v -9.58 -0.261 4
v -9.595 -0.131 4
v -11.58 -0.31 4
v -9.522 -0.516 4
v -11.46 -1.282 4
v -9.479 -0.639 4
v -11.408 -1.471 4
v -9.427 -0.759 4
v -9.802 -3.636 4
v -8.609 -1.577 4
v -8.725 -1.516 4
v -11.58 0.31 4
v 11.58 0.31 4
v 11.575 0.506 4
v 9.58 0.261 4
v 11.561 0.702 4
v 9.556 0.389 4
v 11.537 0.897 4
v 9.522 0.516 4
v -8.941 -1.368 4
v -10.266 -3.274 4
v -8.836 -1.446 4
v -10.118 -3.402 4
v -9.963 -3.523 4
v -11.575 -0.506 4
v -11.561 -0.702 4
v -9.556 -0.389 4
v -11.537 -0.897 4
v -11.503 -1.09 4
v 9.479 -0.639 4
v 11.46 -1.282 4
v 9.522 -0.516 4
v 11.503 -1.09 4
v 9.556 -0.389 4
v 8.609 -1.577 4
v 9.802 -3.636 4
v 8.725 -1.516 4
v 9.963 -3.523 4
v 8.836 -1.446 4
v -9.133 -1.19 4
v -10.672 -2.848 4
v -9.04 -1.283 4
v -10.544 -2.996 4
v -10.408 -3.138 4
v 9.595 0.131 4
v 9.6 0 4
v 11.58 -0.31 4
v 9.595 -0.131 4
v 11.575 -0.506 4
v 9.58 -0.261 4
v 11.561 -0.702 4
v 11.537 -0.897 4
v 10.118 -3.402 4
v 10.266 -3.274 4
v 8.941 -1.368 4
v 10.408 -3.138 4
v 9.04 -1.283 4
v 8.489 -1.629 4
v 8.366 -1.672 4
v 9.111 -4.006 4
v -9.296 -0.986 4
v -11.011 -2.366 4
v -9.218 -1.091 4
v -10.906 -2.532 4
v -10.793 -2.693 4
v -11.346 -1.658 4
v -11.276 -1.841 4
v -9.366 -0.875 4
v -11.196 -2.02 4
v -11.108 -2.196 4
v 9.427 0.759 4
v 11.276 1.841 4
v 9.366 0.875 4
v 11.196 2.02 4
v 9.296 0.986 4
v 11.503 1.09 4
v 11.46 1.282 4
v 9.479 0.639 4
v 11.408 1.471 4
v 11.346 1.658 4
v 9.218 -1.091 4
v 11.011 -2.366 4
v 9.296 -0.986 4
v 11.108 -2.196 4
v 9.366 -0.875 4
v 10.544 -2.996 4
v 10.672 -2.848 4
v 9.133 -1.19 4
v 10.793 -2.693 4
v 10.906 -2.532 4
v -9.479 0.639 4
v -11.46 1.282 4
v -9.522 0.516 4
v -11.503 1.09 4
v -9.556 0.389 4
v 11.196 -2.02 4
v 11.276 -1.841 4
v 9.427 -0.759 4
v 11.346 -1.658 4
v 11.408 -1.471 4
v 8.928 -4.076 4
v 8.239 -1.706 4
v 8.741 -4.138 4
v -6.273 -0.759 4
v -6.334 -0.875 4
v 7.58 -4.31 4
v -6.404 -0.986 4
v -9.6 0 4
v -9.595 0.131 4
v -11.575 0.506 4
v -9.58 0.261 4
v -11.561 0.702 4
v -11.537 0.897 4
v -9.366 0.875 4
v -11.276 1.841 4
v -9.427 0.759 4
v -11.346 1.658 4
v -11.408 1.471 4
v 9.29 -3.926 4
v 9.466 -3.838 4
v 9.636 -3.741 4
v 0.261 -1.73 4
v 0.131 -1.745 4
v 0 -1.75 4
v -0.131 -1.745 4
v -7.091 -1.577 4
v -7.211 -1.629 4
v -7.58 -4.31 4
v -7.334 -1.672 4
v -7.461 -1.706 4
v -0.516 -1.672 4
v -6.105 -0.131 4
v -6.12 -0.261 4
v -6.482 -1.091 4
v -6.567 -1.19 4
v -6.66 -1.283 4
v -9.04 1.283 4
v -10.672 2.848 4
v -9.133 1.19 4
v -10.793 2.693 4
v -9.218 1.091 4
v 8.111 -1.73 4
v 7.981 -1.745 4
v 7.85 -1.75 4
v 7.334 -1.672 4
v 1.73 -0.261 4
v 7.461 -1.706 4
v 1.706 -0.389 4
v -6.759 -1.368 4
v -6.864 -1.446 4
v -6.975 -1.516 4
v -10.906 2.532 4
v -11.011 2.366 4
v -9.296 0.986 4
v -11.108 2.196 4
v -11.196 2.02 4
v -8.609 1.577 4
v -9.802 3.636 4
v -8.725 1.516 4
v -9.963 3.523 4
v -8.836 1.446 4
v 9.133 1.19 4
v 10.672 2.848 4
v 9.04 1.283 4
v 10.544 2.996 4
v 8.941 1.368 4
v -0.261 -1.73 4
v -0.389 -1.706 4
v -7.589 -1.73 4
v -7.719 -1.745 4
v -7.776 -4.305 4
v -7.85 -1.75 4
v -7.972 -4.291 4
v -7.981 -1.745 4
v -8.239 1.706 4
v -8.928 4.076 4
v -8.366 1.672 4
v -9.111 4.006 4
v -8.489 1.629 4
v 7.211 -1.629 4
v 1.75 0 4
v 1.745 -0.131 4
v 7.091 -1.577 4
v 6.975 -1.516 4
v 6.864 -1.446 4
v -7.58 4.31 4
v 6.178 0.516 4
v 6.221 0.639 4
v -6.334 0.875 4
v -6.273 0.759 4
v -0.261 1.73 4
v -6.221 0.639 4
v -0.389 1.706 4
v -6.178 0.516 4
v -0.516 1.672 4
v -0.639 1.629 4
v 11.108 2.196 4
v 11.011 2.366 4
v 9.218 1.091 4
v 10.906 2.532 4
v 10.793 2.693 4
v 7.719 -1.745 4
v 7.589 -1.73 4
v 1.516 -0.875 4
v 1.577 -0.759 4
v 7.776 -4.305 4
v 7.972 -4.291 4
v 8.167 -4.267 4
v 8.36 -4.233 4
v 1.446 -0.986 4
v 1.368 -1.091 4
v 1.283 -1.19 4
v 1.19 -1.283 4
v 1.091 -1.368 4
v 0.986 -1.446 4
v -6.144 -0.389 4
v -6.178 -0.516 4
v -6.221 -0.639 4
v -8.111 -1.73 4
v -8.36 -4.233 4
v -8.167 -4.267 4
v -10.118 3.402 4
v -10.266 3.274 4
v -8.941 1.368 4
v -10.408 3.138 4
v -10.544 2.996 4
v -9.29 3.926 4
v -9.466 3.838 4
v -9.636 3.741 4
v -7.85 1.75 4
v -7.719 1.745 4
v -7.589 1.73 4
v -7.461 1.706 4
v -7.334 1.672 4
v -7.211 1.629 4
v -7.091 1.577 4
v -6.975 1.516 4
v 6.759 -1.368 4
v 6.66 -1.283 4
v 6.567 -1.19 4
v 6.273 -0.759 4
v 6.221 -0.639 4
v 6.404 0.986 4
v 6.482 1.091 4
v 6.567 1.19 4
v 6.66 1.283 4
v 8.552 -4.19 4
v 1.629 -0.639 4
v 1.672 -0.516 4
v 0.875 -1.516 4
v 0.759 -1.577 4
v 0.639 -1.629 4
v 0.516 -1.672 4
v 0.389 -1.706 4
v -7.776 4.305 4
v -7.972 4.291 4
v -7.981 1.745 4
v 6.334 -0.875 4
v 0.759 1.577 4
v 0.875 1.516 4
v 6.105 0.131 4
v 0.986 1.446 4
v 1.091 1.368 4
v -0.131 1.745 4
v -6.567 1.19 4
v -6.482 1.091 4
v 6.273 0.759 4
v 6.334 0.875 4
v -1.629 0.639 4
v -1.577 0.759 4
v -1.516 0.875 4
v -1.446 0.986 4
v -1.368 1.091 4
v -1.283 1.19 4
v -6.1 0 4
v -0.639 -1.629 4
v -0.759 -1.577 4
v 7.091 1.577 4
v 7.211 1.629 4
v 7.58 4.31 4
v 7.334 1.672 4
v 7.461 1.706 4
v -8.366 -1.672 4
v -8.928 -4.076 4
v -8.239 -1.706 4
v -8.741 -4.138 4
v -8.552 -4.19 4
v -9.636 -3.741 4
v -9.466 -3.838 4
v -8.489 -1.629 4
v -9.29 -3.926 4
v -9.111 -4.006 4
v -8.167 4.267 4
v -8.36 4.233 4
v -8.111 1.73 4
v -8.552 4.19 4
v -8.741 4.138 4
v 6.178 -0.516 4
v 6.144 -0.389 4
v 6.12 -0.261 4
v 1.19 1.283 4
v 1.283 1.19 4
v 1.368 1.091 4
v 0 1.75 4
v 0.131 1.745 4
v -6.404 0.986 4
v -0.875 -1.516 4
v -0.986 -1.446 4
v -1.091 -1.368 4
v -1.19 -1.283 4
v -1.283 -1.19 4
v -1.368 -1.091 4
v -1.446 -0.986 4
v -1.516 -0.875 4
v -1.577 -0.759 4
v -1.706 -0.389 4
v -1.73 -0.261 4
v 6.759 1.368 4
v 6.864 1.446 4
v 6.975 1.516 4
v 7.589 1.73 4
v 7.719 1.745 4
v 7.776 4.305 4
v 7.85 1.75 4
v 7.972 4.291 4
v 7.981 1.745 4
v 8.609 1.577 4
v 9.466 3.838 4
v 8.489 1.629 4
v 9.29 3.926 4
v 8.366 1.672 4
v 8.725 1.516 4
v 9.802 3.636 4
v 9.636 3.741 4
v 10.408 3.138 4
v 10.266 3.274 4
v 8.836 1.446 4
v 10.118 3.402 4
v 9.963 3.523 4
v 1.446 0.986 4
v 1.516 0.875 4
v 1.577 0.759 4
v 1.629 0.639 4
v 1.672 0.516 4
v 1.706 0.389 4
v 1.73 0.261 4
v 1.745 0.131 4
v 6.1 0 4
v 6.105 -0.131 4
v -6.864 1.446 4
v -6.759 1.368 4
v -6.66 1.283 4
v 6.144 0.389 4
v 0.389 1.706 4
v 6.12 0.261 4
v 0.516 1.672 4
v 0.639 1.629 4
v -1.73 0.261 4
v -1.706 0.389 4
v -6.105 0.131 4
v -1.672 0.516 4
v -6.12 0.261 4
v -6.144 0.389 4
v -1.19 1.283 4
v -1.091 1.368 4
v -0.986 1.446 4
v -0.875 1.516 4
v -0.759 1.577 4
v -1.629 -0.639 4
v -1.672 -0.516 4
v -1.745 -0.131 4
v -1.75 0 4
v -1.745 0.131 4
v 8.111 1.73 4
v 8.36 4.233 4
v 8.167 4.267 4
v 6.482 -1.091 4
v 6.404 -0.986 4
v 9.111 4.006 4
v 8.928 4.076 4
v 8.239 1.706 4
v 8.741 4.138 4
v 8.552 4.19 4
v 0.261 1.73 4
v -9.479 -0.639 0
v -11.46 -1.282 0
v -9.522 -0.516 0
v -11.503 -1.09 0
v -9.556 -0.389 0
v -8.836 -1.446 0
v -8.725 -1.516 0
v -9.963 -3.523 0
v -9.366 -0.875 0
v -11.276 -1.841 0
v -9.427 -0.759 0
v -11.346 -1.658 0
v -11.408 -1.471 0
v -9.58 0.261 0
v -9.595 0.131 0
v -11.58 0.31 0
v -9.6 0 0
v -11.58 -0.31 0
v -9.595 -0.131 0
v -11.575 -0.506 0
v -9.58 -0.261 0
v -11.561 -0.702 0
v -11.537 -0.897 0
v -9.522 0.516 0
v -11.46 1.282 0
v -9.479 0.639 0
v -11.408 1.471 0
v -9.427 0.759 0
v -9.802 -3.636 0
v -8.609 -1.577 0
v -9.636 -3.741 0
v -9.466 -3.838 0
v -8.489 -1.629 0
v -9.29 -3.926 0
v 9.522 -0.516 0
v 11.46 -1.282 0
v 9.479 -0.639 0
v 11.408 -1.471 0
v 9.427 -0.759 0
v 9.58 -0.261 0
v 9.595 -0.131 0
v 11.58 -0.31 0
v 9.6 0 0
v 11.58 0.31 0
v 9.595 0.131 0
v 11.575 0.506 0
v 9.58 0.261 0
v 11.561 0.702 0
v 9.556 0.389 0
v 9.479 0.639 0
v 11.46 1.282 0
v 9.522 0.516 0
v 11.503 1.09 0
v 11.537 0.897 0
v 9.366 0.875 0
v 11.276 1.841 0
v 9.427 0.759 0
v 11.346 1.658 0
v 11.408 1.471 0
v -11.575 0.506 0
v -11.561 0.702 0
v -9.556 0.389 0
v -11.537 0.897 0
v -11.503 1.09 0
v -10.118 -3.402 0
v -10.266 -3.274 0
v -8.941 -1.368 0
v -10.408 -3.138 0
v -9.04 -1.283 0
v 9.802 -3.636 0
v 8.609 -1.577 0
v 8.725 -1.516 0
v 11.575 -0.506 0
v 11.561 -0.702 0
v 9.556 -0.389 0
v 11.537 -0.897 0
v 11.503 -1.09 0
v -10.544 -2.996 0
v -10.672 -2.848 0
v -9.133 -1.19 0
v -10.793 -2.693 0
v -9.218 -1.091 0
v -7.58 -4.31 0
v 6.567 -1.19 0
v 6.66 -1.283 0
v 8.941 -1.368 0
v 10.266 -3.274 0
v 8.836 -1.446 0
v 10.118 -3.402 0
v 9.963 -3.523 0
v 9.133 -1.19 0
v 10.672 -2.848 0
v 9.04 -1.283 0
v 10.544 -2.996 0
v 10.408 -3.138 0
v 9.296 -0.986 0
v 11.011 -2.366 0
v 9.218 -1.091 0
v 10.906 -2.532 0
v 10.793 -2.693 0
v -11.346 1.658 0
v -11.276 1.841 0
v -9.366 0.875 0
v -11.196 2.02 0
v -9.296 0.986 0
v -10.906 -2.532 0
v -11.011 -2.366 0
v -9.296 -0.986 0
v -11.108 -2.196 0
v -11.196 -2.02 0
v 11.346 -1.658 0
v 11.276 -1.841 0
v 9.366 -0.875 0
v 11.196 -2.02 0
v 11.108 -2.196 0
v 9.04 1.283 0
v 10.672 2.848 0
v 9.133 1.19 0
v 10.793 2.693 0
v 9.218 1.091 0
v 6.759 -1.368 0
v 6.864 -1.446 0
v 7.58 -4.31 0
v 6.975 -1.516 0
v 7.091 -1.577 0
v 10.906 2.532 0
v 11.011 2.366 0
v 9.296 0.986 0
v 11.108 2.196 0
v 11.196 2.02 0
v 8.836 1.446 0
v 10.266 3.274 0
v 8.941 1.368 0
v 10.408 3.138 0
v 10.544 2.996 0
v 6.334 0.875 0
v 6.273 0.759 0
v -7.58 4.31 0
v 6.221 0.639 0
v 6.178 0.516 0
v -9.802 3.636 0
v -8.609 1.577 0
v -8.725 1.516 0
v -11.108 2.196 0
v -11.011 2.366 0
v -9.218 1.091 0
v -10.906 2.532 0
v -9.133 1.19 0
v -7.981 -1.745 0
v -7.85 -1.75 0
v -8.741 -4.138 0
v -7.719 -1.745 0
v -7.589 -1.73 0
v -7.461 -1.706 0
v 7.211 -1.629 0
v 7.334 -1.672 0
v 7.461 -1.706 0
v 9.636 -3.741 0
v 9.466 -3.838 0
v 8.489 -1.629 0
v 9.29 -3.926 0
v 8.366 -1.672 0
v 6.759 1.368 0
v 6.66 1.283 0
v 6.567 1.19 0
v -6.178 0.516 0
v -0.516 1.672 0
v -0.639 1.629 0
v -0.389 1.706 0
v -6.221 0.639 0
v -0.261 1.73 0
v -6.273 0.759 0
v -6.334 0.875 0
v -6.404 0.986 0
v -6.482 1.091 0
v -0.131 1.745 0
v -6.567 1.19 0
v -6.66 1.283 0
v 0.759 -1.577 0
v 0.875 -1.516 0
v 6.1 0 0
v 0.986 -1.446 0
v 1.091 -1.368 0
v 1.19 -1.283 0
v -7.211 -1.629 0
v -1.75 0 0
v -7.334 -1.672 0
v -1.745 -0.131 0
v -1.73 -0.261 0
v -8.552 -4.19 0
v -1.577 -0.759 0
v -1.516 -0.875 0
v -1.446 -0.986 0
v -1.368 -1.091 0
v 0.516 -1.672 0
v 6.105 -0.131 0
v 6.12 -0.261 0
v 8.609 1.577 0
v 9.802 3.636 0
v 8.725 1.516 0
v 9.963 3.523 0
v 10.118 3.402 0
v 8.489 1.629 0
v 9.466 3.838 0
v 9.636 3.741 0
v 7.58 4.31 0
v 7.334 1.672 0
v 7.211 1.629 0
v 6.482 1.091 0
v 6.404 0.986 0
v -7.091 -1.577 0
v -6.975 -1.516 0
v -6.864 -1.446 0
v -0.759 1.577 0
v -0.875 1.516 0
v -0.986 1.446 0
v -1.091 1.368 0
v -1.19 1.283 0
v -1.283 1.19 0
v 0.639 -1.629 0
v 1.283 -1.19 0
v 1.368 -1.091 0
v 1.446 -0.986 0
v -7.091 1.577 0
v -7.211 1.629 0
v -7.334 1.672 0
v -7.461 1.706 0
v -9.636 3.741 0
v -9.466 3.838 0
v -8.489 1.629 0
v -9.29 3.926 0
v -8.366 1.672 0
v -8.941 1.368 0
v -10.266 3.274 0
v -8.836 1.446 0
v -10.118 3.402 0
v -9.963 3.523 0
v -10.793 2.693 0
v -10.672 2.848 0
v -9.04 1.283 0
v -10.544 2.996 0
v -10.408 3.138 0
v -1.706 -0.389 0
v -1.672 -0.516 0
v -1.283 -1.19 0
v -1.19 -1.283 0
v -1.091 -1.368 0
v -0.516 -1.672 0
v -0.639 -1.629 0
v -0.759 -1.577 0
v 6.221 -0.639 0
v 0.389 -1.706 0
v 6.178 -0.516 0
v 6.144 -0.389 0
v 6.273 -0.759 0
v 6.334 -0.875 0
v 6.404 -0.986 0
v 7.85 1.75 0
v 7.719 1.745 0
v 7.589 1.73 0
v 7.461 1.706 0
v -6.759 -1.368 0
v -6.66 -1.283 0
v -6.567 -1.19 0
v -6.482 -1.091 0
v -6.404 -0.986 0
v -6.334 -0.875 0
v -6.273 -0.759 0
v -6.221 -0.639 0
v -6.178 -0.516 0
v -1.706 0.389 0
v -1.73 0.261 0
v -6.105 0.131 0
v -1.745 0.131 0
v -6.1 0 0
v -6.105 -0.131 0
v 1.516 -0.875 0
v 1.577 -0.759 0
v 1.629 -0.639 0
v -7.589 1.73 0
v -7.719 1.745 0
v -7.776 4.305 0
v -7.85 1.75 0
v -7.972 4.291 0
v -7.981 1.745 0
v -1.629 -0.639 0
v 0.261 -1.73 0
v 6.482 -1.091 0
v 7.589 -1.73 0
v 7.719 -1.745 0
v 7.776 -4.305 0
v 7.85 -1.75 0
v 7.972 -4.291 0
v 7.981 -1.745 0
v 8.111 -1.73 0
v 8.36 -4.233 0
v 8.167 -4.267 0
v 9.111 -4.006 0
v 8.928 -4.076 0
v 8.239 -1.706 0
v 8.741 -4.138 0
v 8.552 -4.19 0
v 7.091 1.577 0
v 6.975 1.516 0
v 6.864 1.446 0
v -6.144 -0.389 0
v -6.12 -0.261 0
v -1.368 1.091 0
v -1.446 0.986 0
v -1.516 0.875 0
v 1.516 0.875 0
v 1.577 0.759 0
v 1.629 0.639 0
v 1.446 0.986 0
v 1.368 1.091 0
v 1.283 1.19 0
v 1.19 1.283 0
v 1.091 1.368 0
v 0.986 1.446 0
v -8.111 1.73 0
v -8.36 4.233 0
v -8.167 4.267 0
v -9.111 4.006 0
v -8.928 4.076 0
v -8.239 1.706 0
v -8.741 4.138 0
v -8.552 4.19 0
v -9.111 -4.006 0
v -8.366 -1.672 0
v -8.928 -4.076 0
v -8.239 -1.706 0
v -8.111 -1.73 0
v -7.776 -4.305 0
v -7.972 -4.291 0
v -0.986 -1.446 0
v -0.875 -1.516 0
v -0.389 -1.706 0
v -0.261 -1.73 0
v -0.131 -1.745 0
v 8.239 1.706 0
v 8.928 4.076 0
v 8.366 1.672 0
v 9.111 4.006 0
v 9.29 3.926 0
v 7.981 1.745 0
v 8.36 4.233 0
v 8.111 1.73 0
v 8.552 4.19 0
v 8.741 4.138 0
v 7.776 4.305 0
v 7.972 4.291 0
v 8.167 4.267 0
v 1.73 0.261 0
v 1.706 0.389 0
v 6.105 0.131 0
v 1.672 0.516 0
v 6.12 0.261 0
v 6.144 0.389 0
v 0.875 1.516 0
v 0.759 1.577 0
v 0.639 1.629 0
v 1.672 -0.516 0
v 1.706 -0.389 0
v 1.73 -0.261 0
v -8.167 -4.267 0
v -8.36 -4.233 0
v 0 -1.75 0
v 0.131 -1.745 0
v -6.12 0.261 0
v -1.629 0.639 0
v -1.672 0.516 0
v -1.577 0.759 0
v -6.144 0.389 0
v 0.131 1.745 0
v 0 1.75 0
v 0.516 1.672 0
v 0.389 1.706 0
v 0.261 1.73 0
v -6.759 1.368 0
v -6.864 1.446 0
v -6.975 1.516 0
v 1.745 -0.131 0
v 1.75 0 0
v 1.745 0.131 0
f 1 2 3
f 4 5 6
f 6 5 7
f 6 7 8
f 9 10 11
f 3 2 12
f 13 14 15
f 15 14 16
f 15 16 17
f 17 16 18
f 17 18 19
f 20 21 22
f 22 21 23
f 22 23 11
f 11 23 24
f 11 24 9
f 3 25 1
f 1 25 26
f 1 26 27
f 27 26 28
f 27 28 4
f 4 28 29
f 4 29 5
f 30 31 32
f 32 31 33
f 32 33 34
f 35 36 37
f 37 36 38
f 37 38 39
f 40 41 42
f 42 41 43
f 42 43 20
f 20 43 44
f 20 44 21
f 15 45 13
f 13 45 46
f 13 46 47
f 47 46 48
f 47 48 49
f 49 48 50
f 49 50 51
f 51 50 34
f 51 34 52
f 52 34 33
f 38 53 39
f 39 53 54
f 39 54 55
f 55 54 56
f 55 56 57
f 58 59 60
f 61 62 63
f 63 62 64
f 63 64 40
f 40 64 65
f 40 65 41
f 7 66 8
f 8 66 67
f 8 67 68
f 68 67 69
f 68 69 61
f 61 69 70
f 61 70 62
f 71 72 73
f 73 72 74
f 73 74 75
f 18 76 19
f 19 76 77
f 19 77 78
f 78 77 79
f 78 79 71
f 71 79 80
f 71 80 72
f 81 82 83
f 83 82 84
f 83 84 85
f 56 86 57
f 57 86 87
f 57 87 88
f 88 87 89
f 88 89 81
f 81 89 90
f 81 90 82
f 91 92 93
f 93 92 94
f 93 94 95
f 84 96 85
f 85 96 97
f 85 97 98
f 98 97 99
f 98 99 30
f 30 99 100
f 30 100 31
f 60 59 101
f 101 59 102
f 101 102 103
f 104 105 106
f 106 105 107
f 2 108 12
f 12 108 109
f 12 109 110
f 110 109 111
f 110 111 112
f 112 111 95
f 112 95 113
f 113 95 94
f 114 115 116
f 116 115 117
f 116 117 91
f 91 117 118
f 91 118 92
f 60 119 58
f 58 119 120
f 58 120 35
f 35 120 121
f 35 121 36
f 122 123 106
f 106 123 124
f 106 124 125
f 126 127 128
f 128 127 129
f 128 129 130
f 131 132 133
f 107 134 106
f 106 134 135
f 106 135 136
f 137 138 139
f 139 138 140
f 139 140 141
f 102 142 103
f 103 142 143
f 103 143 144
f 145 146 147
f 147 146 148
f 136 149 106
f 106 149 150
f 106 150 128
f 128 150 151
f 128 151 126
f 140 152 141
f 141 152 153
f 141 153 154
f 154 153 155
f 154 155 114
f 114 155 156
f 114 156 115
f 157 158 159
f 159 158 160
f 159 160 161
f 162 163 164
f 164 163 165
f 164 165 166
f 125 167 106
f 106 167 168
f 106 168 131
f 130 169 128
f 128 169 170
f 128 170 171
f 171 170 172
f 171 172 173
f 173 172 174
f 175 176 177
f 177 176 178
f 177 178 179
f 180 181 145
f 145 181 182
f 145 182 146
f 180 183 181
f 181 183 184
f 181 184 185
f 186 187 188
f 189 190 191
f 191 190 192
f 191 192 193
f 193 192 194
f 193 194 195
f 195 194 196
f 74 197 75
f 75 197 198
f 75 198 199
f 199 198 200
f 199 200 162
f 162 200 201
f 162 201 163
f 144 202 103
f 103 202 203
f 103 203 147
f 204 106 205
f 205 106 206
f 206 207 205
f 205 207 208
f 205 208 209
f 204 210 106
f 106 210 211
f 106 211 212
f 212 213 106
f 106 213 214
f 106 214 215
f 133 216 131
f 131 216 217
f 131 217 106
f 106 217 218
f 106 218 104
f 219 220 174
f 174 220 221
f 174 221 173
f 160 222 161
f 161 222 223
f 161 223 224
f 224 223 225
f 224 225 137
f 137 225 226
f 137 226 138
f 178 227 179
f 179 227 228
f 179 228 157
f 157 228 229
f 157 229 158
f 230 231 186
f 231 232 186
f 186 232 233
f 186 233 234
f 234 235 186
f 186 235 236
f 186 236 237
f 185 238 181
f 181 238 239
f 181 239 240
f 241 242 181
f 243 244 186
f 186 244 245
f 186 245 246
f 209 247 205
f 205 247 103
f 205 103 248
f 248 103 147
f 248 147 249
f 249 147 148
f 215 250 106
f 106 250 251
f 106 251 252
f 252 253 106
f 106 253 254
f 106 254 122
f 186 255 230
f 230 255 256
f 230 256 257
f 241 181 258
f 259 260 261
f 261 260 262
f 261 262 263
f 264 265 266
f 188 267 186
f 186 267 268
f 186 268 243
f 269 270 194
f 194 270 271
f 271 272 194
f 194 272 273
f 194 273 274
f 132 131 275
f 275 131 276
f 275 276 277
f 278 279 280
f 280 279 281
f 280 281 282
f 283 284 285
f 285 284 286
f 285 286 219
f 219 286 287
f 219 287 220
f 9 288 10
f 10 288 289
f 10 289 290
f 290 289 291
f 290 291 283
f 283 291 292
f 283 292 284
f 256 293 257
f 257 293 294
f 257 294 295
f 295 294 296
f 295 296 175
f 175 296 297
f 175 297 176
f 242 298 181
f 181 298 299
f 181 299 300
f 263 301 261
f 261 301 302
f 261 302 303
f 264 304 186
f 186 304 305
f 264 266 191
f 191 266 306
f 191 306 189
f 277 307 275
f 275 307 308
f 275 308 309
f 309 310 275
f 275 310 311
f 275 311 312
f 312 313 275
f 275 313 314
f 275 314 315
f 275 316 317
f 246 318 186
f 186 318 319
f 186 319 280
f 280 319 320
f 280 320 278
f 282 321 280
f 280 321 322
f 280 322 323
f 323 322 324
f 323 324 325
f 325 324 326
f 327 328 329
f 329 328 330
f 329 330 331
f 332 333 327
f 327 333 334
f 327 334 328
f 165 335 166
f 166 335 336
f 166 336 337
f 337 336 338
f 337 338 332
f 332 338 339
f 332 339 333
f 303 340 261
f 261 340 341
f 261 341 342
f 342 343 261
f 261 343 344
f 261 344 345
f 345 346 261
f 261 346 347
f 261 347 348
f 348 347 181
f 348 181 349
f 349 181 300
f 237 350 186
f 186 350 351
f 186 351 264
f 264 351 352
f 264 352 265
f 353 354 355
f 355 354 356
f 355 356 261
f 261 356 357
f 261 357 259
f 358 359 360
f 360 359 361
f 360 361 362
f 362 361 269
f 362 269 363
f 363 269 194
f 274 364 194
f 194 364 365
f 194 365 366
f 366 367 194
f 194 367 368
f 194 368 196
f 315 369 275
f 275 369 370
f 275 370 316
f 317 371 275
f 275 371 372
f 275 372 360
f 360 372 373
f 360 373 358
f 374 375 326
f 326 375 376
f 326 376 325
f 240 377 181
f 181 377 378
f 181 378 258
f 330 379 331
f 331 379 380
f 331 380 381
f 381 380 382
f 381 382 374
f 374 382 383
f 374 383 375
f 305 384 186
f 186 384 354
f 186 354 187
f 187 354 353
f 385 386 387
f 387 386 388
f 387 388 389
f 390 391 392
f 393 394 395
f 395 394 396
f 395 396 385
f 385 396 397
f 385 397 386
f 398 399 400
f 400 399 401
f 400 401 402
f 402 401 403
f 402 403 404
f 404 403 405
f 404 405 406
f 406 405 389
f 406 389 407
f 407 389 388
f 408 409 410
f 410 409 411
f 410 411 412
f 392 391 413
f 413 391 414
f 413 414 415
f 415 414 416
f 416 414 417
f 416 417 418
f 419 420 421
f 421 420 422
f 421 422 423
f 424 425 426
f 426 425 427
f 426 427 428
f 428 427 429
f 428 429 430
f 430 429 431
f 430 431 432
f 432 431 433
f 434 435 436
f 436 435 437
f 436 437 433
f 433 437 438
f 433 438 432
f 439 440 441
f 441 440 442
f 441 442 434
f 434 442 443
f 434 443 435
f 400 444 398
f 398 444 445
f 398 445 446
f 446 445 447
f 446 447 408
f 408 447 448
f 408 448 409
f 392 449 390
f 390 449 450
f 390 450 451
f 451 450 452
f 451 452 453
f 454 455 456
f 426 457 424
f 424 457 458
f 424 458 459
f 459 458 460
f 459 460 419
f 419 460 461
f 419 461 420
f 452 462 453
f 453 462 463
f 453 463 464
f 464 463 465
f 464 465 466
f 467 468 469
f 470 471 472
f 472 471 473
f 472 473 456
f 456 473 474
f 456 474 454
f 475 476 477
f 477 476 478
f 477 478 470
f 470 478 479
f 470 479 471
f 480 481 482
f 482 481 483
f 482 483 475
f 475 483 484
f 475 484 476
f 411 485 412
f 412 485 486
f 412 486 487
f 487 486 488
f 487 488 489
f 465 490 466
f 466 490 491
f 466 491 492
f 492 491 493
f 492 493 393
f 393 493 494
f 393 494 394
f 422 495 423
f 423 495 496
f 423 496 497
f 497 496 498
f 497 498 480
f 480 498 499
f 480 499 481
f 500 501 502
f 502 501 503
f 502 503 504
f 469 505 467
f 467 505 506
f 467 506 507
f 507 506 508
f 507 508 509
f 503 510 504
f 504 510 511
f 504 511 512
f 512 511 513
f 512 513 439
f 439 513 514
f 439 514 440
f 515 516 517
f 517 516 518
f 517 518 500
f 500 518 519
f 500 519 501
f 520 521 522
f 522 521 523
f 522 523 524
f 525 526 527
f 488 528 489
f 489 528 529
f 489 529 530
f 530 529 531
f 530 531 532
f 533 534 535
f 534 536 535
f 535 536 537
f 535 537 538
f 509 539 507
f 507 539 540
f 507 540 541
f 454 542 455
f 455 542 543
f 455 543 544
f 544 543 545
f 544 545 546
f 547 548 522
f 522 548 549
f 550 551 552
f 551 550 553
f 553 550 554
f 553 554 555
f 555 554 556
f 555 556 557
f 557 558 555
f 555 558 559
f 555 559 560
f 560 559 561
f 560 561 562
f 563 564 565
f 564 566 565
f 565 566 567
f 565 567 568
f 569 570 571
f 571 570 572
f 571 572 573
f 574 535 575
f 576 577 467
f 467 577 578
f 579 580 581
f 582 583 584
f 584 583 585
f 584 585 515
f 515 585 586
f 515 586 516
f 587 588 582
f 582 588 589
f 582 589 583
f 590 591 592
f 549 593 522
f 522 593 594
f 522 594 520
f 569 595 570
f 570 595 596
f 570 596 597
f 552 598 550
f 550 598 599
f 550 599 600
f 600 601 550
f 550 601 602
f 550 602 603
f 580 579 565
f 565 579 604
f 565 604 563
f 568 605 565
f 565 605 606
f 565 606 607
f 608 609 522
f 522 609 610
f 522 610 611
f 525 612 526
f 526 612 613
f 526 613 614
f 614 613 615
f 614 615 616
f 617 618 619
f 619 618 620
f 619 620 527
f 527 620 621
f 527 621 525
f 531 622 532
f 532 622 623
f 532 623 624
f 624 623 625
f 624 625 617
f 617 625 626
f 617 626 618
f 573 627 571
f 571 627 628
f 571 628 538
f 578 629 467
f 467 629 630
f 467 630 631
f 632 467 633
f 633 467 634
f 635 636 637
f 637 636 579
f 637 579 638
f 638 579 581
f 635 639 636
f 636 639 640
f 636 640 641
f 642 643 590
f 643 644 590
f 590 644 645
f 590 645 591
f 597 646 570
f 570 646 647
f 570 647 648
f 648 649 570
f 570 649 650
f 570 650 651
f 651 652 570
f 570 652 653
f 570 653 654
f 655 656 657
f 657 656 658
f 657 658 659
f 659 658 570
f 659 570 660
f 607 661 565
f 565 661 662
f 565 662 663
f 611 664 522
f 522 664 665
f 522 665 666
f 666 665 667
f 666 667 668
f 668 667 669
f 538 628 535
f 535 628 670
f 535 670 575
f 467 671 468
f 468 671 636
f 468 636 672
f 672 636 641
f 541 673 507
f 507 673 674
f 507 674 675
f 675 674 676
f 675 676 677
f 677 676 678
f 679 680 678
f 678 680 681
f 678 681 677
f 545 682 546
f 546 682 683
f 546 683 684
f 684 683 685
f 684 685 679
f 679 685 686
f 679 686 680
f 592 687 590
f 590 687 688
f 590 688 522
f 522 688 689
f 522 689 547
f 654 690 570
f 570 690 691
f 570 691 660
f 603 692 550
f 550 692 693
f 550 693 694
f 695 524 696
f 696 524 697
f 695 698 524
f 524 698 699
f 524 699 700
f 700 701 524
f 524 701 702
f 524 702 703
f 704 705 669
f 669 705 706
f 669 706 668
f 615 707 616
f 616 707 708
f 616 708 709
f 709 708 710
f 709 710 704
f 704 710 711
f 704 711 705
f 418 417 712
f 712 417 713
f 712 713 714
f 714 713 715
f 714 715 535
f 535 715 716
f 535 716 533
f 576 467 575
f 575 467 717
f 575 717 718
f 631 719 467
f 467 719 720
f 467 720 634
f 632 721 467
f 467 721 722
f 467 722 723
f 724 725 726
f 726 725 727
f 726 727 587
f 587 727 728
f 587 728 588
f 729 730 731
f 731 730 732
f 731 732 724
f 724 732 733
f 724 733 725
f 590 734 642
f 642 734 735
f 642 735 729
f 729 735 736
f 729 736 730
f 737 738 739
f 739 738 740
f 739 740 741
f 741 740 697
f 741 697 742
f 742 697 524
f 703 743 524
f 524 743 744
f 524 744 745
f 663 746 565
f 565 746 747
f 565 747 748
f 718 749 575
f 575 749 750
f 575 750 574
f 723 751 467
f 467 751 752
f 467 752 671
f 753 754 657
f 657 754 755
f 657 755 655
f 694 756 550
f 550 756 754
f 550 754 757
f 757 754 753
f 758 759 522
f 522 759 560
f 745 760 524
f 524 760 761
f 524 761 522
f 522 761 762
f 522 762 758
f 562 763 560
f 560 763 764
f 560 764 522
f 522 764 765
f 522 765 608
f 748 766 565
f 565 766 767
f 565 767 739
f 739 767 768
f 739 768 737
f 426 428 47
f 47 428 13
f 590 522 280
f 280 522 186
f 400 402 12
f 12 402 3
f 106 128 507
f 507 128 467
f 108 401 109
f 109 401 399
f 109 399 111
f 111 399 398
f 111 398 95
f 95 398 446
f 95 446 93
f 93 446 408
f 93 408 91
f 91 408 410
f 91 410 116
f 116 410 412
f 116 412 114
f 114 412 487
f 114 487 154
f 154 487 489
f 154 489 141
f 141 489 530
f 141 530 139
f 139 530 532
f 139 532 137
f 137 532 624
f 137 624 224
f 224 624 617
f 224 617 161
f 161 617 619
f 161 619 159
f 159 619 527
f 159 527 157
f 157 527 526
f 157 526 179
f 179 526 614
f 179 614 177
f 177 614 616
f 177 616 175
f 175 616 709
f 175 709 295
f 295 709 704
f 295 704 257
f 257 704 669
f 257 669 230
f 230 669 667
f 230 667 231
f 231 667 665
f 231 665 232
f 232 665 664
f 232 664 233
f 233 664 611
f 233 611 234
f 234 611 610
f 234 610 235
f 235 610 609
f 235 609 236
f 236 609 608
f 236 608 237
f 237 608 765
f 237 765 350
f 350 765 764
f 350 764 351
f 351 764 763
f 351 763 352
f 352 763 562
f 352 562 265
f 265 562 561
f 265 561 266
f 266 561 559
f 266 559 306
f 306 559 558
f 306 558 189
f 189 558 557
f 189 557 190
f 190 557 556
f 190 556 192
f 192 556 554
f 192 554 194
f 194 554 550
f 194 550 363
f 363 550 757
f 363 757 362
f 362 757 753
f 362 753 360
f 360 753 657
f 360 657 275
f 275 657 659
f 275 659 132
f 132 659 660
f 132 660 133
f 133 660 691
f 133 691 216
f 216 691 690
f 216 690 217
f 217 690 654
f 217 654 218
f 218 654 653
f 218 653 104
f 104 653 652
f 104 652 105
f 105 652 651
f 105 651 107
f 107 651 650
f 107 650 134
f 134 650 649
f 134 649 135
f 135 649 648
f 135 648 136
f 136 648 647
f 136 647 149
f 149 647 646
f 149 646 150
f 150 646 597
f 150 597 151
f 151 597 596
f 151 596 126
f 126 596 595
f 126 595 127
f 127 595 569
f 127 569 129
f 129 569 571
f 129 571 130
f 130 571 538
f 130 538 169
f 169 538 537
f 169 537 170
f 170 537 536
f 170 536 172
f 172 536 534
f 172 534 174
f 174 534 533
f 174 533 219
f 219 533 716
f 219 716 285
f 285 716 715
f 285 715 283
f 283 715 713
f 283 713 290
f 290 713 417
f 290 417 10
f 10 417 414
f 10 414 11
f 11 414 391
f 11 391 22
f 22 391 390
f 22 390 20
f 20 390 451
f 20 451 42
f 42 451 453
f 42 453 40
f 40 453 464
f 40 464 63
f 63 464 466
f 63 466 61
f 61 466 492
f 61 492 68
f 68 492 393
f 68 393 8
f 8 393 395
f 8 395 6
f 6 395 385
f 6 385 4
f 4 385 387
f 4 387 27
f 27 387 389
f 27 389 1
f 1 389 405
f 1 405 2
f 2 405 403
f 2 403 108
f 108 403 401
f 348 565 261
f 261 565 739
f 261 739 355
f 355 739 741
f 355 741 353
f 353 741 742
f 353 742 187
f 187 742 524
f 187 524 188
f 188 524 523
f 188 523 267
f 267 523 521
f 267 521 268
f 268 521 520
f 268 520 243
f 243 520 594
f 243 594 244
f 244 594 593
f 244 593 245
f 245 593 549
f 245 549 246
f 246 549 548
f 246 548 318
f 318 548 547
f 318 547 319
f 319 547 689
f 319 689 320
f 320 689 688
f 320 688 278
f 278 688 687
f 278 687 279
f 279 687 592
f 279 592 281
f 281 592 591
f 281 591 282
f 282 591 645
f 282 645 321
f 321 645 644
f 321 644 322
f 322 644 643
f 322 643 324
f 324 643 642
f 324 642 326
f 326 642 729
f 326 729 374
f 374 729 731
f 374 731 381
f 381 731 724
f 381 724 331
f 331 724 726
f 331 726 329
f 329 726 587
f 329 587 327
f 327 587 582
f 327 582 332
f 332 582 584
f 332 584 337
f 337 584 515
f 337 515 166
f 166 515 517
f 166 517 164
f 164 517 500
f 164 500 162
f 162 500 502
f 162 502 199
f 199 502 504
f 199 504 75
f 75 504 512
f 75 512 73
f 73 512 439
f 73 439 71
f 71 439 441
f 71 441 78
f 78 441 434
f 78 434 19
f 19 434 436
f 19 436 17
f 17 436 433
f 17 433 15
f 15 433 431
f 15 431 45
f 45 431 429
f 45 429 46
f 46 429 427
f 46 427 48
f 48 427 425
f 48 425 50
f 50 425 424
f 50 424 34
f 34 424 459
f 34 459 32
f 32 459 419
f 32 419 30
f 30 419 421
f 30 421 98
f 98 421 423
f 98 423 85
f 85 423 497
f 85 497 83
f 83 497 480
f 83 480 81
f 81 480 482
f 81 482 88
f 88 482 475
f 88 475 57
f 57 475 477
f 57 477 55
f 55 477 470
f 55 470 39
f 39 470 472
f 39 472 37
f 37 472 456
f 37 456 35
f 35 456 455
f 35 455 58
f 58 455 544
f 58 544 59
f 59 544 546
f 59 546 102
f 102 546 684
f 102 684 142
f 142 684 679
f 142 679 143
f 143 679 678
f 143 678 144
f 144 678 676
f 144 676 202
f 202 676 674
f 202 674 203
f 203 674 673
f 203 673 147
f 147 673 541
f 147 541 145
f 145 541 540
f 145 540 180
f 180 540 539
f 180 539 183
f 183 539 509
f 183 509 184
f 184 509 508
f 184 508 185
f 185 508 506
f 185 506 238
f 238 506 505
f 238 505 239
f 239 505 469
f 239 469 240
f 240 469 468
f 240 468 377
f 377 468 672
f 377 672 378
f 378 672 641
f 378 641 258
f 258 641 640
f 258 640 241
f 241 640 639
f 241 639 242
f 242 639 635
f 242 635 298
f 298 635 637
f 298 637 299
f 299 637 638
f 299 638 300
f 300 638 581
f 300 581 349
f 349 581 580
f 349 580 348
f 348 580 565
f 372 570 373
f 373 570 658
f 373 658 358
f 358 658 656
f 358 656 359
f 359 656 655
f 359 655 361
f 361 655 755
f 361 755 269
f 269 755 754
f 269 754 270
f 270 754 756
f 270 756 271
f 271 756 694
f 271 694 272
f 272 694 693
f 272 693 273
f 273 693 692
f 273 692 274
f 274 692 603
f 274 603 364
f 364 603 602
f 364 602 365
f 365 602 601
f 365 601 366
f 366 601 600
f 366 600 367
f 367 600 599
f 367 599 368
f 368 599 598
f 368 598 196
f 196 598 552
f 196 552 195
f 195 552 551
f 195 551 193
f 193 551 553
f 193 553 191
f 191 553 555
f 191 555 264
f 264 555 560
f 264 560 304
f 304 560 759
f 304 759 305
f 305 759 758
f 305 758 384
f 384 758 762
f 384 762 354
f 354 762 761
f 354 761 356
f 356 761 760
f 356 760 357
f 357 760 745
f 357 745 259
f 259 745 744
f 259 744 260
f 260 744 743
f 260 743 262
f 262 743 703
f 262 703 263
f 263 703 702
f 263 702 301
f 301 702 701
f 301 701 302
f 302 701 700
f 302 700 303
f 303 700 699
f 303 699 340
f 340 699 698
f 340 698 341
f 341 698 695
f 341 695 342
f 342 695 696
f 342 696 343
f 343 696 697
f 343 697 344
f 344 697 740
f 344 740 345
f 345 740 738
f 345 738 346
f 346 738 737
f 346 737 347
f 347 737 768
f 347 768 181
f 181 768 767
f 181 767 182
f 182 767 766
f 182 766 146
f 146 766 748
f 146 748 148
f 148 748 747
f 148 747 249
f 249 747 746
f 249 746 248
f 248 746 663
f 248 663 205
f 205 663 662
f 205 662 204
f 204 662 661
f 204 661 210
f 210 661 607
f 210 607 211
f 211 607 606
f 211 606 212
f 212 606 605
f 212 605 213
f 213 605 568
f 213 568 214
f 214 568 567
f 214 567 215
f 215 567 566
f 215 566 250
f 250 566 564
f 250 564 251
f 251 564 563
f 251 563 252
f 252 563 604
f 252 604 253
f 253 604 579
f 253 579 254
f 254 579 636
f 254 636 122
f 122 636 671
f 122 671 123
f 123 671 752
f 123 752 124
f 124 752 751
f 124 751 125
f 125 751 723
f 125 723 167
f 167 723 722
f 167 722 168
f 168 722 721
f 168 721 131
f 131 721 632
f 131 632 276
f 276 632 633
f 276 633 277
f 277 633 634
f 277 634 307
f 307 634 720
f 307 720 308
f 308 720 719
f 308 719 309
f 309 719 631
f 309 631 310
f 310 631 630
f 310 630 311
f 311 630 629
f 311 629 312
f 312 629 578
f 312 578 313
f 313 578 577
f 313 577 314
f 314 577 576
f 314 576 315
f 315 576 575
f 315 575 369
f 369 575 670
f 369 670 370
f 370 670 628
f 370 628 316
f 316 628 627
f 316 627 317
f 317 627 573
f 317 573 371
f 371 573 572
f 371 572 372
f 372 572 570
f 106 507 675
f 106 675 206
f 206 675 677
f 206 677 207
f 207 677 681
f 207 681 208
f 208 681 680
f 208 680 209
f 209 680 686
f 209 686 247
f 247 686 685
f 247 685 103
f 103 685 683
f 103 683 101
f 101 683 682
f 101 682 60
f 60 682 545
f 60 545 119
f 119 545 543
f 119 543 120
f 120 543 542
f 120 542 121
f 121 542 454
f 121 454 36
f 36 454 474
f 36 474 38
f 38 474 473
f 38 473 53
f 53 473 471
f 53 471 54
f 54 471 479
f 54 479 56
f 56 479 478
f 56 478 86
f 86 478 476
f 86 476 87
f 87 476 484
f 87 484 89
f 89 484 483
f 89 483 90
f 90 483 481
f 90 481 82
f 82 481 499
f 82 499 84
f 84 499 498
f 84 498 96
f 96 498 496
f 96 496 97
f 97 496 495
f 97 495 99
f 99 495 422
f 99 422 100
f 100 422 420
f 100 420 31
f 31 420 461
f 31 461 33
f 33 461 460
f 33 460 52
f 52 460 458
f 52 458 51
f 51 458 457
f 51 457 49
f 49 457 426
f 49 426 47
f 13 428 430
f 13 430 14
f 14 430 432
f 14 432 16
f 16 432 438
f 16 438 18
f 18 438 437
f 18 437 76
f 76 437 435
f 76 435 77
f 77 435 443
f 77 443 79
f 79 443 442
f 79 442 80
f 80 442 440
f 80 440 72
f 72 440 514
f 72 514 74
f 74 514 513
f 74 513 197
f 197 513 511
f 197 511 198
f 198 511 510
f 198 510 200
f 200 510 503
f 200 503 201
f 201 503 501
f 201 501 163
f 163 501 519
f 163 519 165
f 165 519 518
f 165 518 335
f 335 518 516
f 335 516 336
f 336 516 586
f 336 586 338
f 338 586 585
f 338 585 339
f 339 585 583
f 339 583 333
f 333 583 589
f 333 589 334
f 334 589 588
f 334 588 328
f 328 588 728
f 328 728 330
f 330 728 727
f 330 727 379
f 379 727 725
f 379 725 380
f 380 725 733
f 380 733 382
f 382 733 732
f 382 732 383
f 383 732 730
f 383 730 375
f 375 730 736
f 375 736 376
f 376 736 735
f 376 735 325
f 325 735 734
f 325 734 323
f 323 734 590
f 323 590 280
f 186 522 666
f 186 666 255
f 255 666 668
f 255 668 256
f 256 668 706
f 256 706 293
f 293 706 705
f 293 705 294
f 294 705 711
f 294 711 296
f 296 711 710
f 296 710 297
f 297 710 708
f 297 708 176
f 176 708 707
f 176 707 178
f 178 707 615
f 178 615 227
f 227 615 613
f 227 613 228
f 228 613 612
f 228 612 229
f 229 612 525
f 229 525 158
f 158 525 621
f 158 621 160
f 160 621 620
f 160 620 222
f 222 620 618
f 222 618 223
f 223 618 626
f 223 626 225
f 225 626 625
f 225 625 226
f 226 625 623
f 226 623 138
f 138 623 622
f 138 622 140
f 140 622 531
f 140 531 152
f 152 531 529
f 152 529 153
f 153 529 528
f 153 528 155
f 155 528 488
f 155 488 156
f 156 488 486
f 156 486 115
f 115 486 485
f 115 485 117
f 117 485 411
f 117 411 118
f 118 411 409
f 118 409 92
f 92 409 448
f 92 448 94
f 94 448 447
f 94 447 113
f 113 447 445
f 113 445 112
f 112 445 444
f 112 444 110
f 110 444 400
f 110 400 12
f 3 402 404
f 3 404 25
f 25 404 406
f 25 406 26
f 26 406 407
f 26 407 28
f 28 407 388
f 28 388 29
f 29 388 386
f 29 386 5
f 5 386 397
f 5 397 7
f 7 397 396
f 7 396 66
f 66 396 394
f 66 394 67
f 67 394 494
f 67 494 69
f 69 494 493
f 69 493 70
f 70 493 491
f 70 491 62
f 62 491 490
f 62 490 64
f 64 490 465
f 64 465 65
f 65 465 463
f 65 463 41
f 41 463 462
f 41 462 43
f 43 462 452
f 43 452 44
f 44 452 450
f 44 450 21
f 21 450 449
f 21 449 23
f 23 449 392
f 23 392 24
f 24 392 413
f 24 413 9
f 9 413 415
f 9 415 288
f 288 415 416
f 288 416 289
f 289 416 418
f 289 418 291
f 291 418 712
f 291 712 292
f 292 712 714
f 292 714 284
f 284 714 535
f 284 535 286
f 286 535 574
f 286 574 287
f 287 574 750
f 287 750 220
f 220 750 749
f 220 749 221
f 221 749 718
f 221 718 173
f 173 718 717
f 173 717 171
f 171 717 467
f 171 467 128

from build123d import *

# Parameters (mm, degrees)
SKETCH1_W           = 23.16
SKETCH1_H           = 8.62
SKETCH1_R           = 1.75
BOSS_EXTRUDE1_DEPTH = 4
FILLET1_R           = 4


with BuildPart() as part:
    # Sketch1 → Boss-Extrude1 (new body)
    with BuildSketch(Plane.XY):
        Rectangle(SKETCH1_W, SKETCH1_H)
        with Locations((-7.85, 0)):
            Circle(SKETCH1_R, mode=Mode.SUBTRACT)
        with Locations((7.85, 0)):
            Circle(SKETCH1_R, mode=Mode.SUBTRACT)
        Circle(SKETCH1_R, mode=Mode.SUBTRACT)
    extrude(amount=BOSS_EXTRUDE1_DEPTH)

    # Fillet1
    fillet1_edges = [part.edges().sort_by_distance(p)[0] for p in [
        (11.58, -4.31, 2),
        (-11.58, -4.31, 2),
        (-11.58, 4.31, 2),
        (11.58, 4.31, 2),
    ]]
    fillet(fillet1_edges, radius=FILLET1_R)


solid = part.part
